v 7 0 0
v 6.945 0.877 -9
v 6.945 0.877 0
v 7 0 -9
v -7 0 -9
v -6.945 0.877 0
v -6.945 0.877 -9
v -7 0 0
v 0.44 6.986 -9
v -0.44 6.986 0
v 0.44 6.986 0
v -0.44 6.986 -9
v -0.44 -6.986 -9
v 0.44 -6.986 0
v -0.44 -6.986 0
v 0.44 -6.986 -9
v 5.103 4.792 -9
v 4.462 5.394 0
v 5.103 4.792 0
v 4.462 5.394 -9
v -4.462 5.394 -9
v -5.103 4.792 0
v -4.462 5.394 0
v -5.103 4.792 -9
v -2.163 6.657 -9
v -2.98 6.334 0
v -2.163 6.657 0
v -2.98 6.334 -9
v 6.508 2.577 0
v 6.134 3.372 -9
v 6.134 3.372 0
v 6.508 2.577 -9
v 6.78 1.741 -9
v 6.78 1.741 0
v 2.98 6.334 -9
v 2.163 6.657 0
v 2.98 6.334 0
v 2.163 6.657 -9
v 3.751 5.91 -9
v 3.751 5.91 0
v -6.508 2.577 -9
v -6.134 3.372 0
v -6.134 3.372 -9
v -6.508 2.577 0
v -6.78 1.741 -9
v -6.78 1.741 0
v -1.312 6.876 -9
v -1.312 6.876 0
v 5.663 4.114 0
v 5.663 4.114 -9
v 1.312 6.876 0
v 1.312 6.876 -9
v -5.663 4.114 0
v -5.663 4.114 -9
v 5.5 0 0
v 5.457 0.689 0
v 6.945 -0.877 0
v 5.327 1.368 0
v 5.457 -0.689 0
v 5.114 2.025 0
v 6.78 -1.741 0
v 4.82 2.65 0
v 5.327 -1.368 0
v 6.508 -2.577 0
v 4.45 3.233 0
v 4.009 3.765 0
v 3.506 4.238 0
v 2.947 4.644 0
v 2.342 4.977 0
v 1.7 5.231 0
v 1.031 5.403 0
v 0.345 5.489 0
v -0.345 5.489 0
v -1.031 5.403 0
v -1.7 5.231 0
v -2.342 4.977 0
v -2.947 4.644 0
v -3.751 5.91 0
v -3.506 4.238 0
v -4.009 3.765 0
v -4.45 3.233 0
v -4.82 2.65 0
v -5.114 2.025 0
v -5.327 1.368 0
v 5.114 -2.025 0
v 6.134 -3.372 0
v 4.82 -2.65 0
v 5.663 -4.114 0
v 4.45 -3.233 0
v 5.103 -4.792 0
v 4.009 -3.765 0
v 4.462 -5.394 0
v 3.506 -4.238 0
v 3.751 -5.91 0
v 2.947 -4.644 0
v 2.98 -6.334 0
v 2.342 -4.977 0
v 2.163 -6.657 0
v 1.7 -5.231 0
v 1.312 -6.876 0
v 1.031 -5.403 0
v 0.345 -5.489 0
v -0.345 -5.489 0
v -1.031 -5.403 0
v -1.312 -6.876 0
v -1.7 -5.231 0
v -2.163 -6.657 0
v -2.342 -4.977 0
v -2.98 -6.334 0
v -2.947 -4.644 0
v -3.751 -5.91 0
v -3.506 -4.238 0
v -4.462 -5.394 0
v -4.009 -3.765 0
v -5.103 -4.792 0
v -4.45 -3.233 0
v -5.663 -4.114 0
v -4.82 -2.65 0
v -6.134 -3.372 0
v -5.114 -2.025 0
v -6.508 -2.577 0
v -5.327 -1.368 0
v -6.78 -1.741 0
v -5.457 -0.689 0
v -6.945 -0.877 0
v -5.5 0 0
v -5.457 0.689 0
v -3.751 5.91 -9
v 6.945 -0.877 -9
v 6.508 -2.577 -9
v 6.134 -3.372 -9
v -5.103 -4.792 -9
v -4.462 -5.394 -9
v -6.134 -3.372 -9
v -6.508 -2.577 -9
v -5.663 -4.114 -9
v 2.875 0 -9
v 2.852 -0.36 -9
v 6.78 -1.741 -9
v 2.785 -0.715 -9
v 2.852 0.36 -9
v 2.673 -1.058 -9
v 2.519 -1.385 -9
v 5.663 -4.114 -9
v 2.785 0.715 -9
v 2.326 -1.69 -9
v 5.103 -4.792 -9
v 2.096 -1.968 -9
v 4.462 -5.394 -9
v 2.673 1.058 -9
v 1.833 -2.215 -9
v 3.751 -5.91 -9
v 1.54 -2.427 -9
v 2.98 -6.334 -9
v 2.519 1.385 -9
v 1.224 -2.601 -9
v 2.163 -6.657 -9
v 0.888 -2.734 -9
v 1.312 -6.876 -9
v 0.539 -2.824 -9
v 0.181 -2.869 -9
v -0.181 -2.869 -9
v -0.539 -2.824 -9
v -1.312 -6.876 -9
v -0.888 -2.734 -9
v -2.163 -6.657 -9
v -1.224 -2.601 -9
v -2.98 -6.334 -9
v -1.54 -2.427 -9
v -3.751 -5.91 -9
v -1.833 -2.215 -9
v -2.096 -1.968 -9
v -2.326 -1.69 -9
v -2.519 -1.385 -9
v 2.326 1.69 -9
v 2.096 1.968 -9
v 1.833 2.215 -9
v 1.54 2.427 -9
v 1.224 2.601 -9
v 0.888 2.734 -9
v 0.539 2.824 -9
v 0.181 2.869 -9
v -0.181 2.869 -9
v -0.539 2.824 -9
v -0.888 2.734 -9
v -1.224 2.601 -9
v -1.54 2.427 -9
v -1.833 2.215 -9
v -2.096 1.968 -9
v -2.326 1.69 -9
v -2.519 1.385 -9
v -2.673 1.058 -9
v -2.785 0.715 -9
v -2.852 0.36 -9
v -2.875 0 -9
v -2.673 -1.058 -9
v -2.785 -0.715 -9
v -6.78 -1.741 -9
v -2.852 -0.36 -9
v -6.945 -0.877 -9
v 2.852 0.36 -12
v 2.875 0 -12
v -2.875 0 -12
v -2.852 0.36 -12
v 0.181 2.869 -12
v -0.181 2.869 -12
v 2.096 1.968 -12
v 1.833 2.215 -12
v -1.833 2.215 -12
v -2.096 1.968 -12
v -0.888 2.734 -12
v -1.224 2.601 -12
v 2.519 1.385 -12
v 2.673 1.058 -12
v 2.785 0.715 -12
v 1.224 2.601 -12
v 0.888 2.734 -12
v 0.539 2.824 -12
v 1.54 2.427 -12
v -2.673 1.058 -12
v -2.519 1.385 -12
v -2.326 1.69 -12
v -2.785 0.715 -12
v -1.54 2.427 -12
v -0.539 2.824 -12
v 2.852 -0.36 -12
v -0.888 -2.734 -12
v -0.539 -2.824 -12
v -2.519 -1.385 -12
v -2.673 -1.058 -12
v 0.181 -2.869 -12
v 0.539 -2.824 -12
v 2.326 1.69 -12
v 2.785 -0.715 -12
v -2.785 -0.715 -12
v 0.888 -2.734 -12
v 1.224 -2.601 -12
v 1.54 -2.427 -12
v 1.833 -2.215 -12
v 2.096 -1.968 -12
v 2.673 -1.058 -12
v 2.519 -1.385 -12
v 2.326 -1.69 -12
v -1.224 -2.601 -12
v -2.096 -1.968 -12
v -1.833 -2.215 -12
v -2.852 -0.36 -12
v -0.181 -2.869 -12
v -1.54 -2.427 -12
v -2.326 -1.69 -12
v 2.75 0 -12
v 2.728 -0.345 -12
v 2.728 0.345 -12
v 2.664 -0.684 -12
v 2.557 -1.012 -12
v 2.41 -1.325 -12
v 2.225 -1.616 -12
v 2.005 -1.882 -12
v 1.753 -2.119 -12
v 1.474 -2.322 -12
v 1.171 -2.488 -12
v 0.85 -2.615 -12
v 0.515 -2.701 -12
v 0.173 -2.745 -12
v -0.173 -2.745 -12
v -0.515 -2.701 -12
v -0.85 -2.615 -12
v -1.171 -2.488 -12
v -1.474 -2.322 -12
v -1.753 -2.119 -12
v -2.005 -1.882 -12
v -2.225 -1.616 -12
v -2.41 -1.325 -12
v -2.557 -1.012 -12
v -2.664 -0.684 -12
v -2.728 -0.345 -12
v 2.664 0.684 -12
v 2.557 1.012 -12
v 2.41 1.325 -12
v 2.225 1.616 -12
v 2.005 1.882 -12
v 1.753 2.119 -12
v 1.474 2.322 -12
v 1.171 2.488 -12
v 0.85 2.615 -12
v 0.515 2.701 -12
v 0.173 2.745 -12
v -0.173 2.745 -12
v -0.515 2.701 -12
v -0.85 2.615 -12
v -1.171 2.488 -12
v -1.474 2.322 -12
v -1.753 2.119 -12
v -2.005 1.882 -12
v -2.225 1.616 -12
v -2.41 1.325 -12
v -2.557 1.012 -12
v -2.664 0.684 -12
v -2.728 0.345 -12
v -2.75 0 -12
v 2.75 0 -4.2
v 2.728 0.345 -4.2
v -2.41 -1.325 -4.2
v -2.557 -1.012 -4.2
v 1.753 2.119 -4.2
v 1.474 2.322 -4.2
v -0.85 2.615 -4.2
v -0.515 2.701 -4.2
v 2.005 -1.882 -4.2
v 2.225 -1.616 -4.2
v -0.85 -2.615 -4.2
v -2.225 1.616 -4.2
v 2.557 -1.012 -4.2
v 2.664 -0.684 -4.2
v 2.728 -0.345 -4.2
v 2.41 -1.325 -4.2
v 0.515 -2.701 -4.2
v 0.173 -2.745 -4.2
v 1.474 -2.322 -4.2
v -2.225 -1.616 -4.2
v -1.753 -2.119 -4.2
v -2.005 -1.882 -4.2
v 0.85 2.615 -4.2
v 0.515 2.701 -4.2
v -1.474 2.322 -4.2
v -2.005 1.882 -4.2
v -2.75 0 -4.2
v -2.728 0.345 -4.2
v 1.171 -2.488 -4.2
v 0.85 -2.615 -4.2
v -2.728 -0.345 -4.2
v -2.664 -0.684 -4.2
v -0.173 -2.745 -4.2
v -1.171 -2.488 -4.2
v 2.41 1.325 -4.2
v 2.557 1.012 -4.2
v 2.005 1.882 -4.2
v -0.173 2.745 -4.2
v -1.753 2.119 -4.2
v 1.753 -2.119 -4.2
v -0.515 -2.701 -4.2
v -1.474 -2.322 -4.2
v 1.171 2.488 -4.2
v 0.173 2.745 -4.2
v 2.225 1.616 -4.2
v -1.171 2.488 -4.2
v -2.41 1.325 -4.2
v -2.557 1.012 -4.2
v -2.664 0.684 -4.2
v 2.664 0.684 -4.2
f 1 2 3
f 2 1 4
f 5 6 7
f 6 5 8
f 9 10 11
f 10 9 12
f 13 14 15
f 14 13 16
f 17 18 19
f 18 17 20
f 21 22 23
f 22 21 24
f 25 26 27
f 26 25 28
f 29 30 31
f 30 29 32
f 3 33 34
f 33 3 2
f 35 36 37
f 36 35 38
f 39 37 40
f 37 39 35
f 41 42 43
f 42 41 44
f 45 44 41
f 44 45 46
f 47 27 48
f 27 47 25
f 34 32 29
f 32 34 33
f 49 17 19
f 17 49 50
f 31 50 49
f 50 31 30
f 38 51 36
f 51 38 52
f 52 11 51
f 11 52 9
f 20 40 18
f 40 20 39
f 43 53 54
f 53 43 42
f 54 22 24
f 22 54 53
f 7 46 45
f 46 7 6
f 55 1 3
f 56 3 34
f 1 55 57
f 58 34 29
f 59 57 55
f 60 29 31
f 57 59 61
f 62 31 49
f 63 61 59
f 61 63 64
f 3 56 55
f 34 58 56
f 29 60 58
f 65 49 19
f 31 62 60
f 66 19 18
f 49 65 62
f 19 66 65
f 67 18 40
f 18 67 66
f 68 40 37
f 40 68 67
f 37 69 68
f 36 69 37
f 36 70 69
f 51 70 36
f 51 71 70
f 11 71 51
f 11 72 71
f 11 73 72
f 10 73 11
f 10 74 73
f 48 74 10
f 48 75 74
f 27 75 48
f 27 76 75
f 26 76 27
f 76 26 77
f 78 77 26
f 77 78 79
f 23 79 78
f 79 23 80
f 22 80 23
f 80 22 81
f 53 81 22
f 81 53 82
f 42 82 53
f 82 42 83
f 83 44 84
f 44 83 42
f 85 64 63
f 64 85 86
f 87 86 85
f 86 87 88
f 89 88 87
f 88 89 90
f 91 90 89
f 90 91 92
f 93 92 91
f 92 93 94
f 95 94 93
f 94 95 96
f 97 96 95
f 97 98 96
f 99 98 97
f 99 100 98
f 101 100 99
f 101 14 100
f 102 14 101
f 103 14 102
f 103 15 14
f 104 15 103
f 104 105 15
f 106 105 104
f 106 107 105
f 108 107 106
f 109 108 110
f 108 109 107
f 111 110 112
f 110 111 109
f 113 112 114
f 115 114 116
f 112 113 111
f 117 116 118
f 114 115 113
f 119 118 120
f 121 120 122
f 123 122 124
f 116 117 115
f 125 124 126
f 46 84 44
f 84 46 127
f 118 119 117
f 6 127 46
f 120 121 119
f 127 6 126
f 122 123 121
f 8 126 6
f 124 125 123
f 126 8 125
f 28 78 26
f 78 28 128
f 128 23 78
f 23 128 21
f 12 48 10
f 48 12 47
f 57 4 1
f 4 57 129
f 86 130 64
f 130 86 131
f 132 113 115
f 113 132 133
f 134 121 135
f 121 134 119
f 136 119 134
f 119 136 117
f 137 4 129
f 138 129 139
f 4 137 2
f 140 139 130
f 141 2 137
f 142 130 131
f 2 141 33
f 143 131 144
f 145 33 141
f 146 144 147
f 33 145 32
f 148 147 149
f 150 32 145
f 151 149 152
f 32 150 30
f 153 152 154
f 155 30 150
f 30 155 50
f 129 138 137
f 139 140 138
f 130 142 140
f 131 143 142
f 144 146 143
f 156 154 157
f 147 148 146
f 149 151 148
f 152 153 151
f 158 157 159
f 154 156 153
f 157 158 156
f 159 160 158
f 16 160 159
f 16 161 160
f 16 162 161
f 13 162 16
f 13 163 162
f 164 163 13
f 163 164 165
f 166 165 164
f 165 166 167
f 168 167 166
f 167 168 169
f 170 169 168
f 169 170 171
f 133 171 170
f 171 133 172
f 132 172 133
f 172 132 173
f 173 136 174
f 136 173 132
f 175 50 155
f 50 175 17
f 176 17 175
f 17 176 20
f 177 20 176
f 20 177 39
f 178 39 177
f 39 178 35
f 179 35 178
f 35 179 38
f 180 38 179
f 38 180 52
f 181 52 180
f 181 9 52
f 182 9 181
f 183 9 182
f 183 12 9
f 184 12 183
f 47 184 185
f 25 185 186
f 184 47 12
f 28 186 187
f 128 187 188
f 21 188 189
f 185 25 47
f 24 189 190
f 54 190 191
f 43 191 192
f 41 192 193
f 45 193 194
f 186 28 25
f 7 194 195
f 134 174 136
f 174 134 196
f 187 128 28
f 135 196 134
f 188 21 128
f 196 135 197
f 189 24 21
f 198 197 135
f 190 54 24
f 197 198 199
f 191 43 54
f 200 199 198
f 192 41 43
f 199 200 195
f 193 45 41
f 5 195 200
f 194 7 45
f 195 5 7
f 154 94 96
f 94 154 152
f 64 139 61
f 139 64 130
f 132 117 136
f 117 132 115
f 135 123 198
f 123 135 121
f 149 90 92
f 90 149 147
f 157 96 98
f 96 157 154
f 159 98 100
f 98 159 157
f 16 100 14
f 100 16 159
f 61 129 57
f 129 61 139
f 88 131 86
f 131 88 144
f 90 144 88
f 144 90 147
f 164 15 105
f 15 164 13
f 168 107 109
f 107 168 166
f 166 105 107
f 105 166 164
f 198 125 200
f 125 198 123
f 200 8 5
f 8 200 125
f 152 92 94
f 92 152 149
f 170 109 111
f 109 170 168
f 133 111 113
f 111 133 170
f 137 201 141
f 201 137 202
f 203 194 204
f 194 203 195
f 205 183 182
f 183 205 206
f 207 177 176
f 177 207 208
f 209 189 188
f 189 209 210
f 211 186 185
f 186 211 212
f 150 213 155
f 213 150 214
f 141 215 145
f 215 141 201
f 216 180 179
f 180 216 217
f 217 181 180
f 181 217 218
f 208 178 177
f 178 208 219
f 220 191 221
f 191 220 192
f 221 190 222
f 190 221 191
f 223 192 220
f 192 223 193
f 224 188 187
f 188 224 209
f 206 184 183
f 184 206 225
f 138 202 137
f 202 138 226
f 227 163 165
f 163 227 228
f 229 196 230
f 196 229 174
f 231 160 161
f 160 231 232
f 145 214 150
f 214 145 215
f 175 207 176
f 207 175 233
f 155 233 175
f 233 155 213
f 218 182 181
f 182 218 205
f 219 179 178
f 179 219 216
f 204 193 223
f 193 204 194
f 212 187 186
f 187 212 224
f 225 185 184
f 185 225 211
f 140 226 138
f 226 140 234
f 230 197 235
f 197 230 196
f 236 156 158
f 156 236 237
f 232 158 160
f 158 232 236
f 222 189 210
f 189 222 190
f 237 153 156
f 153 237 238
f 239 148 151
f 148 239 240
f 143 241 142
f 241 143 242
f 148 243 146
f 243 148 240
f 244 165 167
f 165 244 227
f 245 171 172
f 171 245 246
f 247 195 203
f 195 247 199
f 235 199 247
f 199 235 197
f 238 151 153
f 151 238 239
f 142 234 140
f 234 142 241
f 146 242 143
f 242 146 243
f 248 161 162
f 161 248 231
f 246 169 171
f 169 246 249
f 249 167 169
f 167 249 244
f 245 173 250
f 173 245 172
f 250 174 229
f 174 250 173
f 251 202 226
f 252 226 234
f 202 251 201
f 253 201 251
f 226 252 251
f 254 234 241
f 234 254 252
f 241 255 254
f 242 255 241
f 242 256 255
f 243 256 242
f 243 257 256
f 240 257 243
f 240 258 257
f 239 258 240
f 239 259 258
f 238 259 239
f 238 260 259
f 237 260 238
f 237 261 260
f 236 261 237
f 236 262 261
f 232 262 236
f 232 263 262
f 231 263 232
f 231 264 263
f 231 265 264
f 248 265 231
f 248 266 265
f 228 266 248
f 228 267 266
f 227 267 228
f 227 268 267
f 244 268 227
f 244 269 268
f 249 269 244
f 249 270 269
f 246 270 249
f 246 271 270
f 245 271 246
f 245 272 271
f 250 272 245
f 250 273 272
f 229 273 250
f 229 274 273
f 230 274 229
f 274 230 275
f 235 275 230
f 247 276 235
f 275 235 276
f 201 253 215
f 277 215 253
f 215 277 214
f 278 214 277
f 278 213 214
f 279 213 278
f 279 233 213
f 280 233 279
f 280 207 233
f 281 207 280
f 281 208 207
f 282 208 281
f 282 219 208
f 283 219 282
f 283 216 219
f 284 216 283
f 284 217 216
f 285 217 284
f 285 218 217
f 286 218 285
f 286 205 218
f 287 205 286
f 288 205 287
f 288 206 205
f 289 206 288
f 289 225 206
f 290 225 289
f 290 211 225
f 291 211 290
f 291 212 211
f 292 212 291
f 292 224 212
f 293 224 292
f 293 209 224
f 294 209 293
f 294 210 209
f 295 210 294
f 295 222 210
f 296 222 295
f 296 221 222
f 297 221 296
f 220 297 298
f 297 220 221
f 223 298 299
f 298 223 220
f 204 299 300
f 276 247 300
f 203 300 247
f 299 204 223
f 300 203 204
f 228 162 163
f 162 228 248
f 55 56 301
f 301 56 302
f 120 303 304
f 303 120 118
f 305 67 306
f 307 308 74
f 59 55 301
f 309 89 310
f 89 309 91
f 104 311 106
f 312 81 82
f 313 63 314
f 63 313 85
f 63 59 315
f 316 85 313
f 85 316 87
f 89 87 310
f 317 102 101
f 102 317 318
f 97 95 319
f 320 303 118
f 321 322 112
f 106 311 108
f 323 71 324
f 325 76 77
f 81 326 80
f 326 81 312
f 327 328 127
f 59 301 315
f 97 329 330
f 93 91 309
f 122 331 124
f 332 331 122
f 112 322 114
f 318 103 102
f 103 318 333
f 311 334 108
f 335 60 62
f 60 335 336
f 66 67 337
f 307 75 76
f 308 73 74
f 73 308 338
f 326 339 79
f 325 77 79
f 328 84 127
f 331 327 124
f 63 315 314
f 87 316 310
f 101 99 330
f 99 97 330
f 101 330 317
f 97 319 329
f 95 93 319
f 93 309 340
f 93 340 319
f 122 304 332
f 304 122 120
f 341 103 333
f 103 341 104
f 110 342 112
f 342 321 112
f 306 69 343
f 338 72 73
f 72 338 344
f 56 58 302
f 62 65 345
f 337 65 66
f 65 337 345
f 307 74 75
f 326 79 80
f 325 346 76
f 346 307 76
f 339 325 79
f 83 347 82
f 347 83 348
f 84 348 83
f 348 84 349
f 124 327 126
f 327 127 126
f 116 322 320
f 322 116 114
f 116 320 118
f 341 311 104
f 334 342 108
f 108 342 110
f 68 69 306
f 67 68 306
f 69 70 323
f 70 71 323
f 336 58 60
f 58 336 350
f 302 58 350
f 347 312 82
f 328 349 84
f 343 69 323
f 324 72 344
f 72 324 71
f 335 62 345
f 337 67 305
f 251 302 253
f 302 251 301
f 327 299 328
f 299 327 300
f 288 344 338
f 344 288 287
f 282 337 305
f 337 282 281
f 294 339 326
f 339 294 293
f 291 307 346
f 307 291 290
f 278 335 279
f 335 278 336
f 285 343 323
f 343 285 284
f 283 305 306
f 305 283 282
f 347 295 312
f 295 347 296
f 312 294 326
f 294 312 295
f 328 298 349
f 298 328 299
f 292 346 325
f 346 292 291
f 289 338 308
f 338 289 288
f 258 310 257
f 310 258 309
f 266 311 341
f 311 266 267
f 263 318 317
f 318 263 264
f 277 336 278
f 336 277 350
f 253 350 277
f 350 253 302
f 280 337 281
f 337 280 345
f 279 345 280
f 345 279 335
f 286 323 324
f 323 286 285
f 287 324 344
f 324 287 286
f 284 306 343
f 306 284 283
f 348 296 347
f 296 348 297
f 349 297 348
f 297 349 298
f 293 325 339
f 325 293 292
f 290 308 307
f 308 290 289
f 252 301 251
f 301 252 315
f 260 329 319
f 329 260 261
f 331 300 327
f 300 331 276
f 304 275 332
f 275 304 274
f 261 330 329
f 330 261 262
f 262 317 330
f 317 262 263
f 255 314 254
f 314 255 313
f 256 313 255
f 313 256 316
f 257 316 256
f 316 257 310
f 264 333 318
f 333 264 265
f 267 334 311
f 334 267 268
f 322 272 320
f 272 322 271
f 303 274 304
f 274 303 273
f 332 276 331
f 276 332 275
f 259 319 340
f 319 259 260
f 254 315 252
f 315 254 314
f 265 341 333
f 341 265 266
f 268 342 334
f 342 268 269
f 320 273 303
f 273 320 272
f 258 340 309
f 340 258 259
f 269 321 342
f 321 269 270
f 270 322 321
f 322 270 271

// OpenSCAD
$fn = 50;


difference() {
	union() {
		translate(v = [0, 0, -9.0000000000]) {
			cylinder(h = 9, r = 7.0000000000);
		}
		translate(v = [0, 0, -12.0000000000]) {
			cylinder(h = 12, r = 2.8750000000);
		}
	}
	union() {
		translate(v = [0, 0, 0]) {
			rotate(a = [0, 0, 0]) {
				difference() {
					union() {
						translate(v = [0, 0, -12.0000000000]) {
							cylinder(h = 12, r = 2.2500000000);
						}
						translate(v = [0, 0, -4.2000000000]) {
							cylinder(h = 4.2000000000, r1 = 2.7500000000, r2 = 5.5000000000);
						}
						translate(v = [0, 0, -12.0000000000]) {
							cylinder(h = 12, r = 2.7500000000);
						}
						translate(v = [0, 0, -12.0000000000]) {
							cylinder(h = 12, r = 2.2500000000);
						}
					}
					union();
				}
			}
		}
	}
}
